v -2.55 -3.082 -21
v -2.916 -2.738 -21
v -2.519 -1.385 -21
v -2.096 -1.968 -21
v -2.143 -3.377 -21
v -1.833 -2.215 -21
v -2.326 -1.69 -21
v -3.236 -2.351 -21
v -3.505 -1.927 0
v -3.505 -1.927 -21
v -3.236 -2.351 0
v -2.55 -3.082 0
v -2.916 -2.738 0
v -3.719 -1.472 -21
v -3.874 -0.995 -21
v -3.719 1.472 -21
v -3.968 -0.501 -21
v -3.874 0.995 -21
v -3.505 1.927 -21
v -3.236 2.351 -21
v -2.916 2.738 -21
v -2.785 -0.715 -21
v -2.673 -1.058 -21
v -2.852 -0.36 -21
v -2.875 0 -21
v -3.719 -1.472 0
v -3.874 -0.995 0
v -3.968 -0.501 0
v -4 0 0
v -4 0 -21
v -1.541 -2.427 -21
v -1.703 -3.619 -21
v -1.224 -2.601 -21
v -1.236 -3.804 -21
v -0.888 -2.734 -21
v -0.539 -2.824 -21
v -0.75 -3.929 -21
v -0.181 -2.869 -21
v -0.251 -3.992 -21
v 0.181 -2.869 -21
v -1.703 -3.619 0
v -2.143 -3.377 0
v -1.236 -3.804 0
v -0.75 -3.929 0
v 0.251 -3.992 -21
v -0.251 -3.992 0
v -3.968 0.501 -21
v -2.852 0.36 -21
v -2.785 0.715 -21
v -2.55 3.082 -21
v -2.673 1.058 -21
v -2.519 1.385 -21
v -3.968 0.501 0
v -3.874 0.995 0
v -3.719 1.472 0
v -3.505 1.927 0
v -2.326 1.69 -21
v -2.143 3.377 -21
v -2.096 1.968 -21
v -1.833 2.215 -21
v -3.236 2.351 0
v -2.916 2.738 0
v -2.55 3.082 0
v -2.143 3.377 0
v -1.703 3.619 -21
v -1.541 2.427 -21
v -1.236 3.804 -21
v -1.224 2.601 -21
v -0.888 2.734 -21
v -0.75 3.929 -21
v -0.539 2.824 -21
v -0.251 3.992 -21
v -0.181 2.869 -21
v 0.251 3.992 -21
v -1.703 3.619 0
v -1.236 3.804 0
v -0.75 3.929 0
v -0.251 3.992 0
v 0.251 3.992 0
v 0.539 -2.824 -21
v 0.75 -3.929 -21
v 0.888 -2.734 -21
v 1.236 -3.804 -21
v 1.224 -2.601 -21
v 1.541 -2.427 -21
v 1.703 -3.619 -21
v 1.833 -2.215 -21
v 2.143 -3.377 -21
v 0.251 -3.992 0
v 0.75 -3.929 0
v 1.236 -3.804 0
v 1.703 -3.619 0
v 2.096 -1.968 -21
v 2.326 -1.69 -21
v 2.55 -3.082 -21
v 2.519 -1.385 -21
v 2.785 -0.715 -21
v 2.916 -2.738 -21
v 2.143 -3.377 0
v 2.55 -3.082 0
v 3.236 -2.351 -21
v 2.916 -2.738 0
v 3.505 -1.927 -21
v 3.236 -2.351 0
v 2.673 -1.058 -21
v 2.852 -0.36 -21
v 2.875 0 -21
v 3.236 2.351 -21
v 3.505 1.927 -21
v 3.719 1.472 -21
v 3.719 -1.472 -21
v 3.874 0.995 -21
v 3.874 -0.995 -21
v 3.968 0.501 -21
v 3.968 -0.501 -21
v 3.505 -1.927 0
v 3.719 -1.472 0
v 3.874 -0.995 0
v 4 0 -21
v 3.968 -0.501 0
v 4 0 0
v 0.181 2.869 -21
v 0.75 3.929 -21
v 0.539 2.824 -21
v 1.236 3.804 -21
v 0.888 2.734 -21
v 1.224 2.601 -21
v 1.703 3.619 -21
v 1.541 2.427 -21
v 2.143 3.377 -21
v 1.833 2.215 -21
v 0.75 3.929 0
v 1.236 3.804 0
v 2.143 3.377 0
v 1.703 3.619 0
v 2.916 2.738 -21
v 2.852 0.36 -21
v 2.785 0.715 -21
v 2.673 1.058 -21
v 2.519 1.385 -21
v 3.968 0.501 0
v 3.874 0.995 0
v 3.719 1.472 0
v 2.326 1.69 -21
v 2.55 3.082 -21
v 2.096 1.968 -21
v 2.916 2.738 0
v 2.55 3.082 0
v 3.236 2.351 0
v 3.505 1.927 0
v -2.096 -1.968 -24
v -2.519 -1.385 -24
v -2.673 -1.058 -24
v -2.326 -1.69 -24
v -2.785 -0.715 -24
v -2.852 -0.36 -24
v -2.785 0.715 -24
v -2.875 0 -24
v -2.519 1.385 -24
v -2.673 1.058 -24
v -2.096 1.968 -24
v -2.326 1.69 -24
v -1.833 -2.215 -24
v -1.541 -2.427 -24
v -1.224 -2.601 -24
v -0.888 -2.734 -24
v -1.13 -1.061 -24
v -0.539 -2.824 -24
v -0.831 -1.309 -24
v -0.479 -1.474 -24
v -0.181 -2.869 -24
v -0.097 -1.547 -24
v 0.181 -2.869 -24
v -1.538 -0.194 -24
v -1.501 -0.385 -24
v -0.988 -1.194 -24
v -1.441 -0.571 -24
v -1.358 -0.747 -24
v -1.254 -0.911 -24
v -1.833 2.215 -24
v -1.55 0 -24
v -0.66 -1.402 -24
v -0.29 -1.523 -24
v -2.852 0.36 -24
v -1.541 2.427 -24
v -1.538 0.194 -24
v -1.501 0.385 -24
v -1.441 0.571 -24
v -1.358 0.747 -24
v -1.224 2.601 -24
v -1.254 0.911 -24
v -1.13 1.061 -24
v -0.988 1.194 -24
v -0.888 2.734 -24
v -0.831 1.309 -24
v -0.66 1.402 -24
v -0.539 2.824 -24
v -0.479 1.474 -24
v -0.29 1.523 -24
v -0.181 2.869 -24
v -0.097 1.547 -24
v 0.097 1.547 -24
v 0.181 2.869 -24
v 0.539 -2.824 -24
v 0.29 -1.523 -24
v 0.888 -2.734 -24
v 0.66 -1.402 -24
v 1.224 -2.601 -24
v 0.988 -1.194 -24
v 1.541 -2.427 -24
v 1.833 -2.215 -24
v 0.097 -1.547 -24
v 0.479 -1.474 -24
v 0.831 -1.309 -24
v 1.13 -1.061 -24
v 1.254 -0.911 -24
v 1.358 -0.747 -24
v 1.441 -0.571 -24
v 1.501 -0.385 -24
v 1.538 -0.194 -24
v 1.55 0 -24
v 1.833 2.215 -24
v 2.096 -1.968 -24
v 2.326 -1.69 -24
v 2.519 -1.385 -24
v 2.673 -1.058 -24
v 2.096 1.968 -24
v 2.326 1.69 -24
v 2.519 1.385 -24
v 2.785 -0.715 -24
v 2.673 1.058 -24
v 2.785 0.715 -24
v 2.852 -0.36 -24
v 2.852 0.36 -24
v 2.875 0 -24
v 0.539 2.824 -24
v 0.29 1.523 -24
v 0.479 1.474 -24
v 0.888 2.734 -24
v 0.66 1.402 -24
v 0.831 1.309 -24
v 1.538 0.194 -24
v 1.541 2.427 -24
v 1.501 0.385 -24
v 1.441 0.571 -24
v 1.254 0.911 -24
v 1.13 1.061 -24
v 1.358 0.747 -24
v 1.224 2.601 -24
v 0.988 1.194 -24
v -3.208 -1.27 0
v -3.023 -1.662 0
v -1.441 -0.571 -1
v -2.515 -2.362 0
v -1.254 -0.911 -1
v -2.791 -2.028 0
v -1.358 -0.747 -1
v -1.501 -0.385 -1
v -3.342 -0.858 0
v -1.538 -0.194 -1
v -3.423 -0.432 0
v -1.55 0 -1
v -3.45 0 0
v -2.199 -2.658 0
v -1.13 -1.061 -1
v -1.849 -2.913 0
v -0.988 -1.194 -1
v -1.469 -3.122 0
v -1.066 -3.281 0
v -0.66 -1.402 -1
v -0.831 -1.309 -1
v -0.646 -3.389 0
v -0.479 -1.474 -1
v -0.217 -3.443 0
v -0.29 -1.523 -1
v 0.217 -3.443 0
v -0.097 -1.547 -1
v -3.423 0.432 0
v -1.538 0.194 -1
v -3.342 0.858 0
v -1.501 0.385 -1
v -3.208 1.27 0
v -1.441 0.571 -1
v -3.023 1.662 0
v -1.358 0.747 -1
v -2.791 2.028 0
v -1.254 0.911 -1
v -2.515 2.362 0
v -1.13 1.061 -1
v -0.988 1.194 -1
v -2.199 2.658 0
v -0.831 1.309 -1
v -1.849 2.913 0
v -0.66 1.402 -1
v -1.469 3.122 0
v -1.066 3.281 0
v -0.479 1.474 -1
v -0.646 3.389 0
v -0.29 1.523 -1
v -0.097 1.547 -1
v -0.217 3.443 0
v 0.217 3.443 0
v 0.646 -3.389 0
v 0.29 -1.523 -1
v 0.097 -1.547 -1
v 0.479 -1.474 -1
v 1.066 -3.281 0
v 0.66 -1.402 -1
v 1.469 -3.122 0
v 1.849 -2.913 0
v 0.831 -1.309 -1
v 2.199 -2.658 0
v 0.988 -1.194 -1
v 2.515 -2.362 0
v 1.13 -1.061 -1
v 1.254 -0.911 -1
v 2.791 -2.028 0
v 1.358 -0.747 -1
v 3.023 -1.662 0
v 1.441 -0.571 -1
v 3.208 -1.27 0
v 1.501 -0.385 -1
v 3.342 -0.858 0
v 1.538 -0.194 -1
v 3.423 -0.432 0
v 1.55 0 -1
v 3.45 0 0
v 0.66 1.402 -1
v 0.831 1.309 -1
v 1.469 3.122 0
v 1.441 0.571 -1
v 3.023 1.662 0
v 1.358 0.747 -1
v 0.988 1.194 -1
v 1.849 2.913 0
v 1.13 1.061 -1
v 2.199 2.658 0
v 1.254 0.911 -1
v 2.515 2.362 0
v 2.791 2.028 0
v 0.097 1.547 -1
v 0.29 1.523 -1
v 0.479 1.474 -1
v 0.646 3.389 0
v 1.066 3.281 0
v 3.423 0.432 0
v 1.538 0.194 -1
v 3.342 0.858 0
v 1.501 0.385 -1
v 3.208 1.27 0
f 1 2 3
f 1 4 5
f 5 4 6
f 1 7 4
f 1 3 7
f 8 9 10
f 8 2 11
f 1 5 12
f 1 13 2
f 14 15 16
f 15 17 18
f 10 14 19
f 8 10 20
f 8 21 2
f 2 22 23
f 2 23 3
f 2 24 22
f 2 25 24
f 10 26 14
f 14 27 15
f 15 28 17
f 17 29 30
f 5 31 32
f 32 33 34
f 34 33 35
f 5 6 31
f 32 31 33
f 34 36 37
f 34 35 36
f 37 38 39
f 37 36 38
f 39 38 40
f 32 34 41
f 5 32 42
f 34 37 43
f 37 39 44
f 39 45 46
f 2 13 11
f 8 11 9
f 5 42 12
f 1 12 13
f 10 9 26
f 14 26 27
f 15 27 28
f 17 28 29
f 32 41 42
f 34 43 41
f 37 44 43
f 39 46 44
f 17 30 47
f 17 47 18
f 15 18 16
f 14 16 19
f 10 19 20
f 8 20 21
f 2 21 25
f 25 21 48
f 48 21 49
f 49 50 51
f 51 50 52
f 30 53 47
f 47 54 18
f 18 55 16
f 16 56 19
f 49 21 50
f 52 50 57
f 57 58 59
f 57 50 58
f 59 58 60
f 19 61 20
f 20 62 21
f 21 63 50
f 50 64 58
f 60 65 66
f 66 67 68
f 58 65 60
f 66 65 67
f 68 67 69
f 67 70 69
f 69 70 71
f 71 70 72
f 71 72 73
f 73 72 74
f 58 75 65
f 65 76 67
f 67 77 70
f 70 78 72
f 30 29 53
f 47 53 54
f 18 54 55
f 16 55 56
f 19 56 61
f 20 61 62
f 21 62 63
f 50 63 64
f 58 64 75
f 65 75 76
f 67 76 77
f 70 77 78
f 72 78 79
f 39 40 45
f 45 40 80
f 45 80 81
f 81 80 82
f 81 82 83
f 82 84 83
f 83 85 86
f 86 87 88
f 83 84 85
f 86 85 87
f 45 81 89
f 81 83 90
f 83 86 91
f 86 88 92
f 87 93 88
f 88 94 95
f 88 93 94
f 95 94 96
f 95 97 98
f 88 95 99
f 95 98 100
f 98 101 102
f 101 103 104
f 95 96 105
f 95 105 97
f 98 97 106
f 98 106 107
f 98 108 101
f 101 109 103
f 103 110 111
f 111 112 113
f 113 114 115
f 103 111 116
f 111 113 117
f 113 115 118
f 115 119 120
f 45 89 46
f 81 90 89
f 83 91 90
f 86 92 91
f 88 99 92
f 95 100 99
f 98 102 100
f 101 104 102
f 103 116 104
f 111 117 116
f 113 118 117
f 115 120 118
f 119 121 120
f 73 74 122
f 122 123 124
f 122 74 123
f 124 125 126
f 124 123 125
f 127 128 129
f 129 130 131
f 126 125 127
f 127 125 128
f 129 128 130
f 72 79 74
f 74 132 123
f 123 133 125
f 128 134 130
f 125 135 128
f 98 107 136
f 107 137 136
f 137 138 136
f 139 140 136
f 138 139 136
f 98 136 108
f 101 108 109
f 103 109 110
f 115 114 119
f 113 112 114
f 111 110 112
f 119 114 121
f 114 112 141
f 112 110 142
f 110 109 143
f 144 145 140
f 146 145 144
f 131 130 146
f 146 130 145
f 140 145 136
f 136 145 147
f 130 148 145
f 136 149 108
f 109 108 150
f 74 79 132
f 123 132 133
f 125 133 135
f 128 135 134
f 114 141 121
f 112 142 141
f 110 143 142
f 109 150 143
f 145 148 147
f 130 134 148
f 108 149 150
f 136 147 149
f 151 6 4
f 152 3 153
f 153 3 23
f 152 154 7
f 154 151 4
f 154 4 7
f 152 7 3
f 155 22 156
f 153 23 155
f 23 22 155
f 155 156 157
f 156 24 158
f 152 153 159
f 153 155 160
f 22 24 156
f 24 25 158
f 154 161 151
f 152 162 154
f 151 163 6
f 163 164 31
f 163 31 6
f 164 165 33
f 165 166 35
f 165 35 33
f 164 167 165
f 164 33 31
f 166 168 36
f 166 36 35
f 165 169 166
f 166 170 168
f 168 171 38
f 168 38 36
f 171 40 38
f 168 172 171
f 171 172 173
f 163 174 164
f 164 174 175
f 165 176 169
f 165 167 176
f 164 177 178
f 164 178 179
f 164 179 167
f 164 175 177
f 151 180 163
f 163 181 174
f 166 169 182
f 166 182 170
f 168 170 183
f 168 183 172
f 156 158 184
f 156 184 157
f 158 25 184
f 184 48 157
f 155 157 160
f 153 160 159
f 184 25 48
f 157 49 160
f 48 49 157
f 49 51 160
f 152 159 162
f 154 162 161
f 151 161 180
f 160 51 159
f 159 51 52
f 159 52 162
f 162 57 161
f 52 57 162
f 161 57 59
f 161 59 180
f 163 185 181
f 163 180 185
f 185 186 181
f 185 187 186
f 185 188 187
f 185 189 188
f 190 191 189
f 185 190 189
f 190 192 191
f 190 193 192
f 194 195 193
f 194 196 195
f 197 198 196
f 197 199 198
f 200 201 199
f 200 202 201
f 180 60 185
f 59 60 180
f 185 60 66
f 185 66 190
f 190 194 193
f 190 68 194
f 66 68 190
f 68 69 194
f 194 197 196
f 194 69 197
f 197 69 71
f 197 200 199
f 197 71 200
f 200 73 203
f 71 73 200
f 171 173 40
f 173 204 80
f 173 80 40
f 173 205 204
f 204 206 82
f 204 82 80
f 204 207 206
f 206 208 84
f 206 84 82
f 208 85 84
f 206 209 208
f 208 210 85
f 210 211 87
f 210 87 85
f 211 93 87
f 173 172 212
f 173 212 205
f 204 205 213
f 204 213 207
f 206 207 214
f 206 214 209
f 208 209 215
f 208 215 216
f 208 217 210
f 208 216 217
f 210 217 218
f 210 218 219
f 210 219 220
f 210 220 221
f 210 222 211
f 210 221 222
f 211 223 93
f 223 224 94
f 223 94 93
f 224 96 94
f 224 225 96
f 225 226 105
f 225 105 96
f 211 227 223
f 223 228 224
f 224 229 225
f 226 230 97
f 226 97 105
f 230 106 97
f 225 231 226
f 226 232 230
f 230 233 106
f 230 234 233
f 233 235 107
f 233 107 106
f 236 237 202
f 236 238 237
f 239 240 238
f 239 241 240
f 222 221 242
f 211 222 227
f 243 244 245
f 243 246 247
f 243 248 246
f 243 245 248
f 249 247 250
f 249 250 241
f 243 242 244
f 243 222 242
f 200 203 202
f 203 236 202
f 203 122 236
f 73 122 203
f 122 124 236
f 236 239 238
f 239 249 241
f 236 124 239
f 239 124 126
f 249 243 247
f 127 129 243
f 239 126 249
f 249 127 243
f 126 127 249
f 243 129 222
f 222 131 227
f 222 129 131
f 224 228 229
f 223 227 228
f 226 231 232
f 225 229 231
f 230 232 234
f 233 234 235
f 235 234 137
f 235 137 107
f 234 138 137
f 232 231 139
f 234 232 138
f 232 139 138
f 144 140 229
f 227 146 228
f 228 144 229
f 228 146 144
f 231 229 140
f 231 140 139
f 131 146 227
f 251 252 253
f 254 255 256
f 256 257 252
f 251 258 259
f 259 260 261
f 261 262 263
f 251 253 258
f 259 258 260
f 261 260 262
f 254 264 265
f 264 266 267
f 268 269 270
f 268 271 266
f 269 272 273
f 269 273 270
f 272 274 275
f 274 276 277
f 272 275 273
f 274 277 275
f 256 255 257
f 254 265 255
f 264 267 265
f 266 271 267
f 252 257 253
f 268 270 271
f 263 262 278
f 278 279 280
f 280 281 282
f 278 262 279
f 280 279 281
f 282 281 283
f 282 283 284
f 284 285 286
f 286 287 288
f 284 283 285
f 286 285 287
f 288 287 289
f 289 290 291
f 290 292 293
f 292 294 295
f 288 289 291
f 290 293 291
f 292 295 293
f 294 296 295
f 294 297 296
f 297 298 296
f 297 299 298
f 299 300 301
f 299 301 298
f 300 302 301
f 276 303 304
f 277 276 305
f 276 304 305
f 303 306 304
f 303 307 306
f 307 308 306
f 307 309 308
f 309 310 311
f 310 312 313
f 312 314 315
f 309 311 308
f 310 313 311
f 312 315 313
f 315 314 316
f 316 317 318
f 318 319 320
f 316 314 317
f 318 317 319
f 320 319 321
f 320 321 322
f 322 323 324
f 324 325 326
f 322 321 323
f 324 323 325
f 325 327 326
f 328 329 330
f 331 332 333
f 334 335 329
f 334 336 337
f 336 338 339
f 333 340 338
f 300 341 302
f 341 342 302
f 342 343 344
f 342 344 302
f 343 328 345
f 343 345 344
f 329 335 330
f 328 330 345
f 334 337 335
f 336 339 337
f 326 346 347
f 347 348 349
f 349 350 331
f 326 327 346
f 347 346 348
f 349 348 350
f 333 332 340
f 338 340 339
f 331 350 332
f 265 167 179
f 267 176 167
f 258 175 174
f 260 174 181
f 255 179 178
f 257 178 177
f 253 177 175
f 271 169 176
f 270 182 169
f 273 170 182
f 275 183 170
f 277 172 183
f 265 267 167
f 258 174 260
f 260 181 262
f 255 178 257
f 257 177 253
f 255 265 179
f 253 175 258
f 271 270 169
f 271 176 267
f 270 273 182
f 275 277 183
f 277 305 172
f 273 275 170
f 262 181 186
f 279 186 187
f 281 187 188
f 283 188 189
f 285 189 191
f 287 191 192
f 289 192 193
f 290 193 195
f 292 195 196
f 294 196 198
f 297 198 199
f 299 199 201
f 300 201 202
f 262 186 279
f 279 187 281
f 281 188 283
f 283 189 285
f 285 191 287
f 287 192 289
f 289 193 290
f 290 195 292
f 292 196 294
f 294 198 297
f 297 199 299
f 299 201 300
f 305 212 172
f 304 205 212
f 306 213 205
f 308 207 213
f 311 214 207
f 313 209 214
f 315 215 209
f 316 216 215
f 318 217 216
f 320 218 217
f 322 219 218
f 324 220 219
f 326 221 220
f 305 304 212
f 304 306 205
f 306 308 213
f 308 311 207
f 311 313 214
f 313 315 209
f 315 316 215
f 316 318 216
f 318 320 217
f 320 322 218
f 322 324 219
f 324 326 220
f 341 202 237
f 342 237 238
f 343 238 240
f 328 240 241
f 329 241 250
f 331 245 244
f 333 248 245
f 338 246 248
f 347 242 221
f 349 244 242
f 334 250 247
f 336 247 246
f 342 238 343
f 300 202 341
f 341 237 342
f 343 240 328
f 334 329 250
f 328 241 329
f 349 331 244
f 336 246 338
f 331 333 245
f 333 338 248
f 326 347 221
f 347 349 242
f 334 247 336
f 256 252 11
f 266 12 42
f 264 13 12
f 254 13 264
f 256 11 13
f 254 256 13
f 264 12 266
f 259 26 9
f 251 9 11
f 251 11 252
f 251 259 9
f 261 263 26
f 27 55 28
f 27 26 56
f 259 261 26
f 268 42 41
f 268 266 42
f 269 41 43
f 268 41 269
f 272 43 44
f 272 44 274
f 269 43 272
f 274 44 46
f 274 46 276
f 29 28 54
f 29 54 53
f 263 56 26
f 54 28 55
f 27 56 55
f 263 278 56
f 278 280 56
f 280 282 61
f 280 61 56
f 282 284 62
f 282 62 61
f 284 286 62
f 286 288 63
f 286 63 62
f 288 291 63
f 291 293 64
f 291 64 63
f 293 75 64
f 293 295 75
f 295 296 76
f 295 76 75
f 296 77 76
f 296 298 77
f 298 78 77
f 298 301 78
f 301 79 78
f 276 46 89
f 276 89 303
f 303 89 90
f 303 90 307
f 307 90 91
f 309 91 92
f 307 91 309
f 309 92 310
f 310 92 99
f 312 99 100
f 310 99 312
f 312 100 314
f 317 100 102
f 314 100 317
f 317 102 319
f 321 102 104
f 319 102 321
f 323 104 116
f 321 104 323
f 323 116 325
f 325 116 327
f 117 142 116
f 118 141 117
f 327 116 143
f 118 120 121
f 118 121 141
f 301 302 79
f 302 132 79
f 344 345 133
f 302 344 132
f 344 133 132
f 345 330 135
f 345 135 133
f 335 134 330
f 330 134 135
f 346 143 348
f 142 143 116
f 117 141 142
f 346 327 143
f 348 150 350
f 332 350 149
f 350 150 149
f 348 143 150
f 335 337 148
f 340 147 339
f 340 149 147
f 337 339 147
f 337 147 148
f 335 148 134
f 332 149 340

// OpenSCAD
$fn = 50;

difference() {
	union() {
		translate(v = [0, 0, -21.0]) {
			cylinder(h = 21, r = 4.0);
		}
		#translate(v = [0, 0, -24.0]) {
			cylinder(h = 24, r = 2.875);
		}
	}
	union() {
		translate(v = [0, 0, 0]) {
			rotate(a = [0, 0, 0]) {
				difference() {
					union() {
						translate(v = [0, 0, -24.0]) {
							cylinder(h = 24, r = 1.25);
						}
						translate(v = [0, 0, -1.0]) {
							cylinder(h = 1.0, r1 = 1.55, r2 = 3.45);
						}
						translate(v = [0, 0, -24.0]) {
							cylinder(h = 24, r = 1.55);
						}
						translate(v = [0, 0, -24.0]) {
							cylinder(h = 24, r = 1.25);
						}
					}
					union();
				}
			}
		}
	}
}
